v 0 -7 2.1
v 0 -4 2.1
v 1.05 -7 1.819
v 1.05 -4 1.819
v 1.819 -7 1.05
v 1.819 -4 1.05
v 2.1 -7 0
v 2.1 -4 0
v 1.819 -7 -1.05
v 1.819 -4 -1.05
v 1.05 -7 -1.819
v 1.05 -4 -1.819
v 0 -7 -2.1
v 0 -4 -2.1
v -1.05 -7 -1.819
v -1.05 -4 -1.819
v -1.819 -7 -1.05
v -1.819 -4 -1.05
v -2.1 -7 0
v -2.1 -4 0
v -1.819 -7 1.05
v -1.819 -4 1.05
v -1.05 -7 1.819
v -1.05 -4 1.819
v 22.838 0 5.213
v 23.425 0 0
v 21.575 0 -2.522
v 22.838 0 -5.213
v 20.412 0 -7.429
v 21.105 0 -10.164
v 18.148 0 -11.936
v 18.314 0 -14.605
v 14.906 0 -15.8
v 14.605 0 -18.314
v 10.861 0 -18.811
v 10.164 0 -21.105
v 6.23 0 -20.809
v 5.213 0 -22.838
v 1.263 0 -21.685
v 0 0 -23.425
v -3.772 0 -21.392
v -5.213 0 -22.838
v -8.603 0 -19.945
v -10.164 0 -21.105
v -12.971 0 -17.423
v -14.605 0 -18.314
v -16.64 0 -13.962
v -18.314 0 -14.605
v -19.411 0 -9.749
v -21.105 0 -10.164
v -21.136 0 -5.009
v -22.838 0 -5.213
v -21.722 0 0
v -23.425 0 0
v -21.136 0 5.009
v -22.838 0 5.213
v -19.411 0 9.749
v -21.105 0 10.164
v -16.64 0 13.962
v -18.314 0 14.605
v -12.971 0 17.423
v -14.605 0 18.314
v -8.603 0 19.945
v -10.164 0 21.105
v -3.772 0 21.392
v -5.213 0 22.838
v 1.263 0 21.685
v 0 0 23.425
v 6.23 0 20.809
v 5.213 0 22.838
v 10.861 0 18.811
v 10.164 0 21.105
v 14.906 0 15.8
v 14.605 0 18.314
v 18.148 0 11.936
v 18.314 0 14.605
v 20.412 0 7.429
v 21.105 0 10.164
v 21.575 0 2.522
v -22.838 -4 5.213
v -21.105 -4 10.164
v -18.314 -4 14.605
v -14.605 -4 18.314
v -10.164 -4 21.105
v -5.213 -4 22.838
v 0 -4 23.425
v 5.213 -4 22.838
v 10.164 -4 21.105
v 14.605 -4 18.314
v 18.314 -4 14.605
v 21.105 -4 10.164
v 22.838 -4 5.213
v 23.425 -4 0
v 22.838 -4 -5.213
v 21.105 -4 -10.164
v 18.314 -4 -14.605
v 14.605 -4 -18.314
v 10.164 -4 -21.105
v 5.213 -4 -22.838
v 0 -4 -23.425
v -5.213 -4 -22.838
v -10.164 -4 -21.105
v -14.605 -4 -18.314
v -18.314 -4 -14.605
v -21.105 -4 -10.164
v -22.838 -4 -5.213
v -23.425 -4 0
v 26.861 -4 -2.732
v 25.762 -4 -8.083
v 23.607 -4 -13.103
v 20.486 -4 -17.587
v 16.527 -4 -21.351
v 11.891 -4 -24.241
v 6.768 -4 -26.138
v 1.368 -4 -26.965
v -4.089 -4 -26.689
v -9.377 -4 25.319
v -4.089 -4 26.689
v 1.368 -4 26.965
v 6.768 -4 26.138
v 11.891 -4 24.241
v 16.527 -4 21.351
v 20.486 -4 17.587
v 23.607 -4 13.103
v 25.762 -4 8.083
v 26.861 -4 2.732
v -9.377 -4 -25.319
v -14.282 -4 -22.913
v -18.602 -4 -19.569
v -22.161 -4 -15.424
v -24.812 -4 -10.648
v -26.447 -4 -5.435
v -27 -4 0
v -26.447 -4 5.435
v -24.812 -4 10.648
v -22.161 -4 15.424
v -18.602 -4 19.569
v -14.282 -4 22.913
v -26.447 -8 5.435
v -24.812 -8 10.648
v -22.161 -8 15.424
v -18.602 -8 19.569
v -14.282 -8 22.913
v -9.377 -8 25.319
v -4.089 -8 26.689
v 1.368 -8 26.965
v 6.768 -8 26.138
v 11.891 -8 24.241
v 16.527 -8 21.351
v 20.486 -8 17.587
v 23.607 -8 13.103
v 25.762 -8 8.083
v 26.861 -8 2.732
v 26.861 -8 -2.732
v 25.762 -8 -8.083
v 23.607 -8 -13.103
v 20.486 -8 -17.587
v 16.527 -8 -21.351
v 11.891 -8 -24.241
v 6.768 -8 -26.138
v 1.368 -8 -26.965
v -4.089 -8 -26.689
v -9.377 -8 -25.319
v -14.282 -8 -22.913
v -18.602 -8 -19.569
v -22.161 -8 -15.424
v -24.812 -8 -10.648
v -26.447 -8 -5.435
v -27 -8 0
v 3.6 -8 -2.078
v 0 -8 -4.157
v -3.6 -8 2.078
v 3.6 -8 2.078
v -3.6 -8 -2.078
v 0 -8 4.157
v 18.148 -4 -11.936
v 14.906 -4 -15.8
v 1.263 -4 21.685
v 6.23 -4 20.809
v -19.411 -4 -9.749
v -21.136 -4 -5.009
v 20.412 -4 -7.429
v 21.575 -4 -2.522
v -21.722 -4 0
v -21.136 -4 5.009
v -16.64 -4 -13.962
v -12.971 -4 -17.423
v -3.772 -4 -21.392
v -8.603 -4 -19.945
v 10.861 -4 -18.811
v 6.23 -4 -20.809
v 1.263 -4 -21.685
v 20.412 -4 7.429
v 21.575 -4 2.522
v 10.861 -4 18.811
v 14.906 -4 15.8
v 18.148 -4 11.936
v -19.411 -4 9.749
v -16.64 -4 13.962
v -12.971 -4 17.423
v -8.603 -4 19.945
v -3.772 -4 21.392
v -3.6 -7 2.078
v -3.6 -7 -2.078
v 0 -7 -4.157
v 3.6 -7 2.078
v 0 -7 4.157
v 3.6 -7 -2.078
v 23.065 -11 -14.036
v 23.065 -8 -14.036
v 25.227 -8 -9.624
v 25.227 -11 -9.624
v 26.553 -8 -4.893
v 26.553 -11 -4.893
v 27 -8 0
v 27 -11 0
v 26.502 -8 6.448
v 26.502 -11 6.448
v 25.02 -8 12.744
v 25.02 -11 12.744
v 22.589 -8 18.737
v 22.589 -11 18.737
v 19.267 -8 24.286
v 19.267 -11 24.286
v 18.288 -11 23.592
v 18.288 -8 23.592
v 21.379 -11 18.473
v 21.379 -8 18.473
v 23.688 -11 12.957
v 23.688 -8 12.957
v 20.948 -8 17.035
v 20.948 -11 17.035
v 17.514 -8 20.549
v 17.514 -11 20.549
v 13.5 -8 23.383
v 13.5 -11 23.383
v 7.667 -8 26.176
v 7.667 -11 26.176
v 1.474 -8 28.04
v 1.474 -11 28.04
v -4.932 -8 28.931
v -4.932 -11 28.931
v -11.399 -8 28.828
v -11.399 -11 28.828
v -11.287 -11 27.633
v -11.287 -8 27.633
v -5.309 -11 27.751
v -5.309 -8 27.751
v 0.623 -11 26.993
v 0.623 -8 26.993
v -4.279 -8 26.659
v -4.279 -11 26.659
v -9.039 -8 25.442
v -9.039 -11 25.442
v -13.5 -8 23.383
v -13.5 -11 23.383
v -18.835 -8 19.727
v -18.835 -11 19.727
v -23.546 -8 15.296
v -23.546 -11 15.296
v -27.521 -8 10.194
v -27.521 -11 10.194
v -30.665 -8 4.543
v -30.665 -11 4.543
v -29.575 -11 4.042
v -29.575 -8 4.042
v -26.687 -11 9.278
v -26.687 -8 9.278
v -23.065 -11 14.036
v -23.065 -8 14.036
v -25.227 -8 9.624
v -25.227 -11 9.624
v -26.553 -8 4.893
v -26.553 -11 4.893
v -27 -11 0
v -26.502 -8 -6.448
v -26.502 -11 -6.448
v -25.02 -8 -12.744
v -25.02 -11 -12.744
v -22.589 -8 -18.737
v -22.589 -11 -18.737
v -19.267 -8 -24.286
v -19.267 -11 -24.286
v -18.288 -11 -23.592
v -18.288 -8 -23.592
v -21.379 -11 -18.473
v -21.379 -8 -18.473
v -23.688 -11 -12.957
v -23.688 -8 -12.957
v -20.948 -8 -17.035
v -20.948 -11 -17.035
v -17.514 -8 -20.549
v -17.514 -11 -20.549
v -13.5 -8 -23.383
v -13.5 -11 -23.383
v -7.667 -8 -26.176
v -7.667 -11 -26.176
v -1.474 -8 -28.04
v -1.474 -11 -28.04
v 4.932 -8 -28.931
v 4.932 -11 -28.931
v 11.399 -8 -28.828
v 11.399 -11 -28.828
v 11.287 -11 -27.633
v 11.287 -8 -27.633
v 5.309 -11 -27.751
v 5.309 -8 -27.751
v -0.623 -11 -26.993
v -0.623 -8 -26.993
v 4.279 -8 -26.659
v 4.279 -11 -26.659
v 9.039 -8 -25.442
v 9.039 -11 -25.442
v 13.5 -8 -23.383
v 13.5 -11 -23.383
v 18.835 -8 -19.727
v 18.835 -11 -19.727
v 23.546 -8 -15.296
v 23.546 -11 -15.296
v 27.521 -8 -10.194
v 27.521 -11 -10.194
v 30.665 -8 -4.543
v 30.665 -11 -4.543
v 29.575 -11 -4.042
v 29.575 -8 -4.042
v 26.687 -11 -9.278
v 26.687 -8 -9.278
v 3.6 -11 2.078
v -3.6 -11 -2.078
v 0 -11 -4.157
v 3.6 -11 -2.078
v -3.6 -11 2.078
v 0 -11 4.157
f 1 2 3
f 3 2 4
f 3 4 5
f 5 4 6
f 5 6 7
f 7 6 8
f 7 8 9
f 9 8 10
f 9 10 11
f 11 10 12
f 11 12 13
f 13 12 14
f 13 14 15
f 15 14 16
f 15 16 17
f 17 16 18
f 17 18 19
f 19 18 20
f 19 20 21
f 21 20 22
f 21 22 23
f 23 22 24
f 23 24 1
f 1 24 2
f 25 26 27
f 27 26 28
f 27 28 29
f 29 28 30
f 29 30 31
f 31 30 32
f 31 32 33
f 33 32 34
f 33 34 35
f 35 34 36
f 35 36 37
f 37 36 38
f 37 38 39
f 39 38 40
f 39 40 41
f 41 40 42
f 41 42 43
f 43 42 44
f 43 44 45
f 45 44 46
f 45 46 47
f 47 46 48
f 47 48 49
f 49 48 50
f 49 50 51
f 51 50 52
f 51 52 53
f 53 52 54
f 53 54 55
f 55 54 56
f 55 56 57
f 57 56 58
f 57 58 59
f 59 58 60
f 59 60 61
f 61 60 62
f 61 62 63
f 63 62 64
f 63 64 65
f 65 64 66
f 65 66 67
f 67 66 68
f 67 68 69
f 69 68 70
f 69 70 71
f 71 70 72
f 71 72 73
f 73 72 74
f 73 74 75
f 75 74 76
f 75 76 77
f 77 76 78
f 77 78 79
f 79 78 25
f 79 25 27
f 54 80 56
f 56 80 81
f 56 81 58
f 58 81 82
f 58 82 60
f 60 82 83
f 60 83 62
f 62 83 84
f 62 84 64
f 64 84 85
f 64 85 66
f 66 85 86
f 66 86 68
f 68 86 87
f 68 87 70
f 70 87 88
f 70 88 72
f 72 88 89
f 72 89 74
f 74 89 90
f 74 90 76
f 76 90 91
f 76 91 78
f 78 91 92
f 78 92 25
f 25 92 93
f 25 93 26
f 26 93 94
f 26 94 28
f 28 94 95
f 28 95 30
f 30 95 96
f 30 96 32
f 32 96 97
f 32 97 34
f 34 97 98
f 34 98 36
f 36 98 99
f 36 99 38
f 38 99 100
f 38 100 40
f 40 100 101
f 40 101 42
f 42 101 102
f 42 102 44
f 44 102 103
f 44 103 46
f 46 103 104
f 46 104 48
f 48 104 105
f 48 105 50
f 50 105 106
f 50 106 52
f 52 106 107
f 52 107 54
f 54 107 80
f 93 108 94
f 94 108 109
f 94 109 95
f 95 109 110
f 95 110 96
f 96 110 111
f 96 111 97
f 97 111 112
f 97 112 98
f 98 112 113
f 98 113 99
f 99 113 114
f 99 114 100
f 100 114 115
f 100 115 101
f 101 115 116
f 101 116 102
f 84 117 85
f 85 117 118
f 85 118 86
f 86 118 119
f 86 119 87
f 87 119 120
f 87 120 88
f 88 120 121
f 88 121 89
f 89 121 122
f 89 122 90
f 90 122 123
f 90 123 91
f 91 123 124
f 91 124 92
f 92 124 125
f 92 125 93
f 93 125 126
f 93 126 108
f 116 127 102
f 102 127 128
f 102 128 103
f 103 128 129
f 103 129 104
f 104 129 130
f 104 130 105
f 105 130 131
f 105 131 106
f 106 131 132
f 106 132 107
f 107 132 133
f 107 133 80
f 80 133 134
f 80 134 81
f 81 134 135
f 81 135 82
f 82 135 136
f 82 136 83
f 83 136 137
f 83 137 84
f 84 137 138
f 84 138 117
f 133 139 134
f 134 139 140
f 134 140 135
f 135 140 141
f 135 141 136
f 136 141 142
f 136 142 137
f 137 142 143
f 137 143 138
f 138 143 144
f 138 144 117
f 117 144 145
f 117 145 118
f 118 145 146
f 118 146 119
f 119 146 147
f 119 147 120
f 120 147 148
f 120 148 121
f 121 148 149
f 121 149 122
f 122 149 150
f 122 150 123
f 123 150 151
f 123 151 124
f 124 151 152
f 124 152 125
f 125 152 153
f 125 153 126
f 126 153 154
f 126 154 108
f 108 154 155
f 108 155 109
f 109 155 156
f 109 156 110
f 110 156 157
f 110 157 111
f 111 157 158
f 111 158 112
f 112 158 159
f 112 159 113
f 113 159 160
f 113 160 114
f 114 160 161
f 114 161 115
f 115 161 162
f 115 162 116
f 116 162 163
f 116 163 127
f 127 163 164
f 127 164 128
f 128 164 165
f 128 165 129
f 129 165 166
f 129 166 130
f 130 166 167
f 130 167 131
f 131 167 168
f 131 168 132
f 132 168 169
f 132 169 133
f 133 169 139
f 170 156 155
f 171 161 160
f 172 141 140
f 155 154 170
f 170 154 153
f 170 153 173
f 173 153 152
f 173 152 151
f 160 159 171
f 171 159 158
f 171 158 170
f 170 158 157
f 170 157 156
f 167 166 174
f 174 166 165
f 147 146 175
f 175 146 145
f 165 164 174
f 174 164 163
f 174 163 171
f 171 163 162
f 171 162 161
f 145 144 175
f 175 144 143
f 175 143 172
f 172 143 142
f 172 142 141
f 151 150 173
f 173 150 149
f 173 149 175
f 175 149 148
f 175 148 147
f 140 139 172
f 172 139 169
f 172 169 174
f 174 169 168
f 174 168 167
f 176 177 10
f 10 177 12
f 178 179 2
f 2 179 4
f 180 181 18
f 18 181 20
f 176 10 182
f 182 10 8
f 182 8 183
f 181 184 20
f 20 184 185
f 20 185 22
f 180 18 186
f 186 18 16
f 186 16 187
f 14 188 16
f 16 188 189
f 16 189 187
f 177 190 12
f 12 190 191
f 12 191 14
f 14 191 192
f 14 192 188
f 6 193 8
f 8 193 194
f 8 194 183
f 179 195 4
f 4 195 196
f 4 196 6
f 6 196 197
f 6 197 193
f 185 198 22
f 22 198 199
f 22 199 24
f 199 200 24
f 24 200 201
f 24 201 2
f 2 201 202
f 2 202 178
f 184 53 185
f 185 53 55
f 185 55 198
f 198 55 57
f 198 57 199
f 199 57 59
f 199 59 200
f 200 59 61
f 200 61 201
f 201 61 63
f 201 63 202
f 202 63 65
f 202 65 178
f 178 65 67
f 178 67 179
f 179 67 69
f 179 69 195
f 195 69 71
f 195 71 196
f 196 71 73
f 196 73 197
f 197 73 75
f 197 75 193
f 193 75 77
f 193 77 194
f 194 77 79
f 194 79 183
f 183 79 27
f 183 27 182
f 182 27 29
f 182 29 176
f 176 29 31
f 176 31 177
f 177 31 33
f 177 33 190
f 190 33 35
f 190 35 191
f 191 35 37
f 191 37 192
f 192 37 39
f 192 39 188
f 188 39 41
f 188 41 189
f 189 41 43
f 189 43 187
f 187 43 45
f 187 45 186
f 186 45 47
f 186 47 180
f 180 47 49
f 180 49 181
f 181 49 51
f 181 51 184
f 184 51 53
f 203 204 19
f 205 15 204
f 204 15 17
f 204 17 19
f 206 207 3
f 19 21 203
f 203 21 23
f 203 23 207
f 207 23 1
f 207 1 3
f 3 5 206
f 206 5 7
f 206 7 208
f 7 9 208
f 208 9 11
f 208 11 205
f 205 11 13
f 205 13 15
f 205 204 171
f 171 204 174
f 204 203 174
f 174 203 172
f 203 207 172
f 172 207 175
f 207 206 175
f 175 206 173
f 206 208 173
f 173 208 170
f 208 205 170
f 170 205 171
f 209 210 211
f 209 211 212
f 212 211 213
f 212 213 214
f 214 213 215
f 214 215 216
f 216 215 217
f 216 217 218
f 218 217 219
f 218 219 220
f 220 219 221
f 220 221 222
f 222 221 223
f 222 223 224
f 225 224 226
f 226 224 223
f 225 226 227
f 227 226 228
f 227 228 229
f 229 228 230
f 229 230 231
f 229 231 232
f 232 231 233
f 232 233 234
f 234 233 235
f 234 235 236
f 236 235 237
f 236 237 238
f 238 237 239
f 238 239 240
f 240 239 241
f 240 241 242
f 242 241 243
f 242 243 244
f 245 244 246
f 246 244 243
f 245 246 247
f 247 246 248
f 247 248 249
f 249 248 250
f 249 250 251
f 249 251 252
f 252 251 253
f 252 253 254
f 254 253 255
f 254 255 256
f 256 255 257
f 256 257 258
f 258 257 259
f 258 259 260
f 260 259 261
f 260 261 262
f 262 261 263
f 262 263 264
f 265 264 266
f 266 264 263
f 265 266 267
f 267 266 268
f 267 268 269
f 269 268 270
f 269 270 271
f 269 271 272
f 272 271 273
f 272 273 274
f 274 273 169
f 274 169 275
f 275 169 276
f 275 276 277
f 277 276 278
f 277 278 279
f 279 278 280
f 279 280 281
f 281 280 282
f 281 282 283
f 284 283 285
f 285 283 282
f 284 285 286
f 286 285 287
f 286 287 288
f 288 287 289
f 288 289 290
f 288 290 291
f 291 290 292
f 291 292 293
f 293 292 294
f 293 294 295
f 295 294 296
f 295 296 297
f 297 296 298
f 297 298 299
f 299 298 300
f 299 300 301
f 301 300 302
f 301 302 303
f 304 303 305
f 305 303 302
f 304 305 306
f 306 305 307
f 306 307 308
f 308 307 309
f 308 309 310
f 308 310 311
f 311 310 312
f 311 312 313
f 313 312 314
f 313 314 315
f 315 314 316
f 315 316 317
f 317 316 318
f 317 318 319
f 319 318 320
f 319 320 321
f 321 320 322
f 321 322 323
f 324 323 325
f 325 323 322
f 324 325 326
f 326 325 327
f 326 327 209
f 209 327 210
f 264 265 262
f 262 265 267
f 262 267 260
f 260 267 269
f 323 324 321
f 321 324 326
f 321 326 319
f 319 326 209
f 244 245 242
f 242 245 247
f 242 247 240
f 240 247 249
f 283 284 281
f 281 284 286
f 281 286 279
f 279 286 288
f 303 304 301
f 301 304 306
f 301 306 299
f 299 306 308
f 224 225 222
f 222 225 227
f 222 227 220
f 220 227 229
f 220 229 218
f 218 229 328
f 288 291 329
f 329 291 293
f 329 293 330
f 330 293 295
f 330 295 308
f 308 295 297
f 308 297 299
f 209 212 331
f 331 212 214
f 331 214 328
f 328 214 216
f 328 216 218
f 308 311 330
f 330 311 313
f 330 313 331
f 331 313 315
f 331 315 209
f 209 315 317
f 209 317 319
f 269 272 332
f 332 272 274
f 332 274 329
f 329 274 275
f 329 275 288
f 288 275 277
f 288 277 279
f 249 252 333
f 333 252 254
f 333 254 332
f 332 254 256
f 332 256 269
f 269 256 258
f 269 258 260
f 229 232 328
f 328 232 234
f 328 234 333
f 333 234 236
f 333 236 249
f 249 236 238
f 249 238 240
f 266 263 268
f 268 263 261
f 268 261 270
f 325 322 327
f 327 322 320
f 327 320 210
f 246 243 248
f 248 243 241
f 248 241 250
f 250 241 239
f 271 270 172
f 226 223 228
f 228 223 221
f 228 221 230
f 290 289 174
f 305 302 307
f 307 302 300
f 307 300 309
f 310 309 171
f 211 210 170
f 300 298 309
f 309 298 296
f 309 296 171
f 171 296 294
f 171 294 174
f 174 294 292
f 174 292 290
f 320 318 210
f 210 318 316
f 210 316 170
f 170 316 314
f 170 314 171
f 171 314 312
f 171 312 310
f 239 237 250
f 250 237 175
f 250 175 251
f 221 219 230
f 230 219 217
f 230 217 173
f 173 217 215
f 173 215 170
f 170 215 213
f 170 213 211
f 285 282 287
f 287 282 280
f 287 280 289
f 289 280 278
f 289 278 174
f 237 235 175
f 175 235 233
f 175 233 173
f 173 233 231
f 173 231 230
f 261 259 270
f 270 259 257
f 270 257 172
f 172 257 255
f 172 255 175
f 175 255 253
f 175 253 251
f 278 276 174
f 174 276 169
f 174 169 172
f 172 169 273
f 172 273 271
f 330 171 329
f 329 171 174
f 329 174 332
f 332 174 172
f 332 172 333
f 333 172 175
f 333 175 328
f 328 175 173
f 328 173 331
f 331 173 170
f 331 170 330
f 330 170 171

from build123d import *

# Parameters (mm, degrees)
BOSS_EXTRUDE1_DEPTH = 3
SKETCH23_W          = 2.1
SKETCH23_H          = 7
CUT_EXTRUDE1_DEPTH  = 4


with BuildPart() as part:
    # Sketch1 → Revolve1 (revolve)
    with BuildSketch(Plane.XY):
        Polygon((-23.425, 0), (-23.425, -4), (-27, -4), (-27, -8), (0, -8), (0, -4), (-21.721500416, -4), (-21.721500416, 0), align=None)
    revolve(axis=Axis((0, -8, 0), (0, -1, 0)))


with BuildPart() as body_2:
    # Sketch18 → Boss-Extrude1 (new body)
    with BuildSketch(Plane.XZ.offset(8)):
        with BuildLine():
            Line((18.287619048, 23.591829478), (19.266666667, 24.285706816))
            ThreePointArc((19.266666667, 24.285706816), (25.019995002, 12.743625858), (27, 0))
            ThreePointArc((27, 0), (25.997622732, -7.288594671), (23.06491761, -14.036009962))
            ThreePointArc((23.06491761, -14.036009962), (26.687121428, -9.277998508), (29.574933174, -4.041627931))
            Line((29.574933174, -4.041627931), (30.665372385, -4.542569372))
            ThreePointArc((30.665372385, -4.542569372), (23.54630123, -15.296138346), (13.5, -23.382685902))
            ThreePointArc((13.5, -23.382685902), (6.686703224, -26.158899059), (-0.62308239, -26.992809567))
            ThreePointArc((-0.62308239, -26.992809567), (5.30857831, -27.750724365), (11.287314126, -27.633457409))
            Line((11.287314126, -27.633457409), (11.398705718, -28.828276188))
            ThreePointArc((11.398705718, -28.828276188), (-1.473693772, -28.039764204), (-13.5, -23.382685902))
            ThreePointArc((-13.5, -23.382685902), (-19.310919509, -18.870304389), (-23.688, -12.956799605))
            ThreePointArc((-23.688, -12.956799605), (-21.378543119, -18.472725857), (-18.287619048, -23.591829478))
            Line((-18.287619048, -23.591829478), (-19.266666667, -24.285706816))
            ThreePointArc((-19.266666667, -24.285706816), (-25.019995002, -12.743625858), (-27, 0))
            ThreePointArc((-27, 0), (-25.997622732, 7.288594671), (-23.06491761, 14.036009962))
            ThreePointArc((-23.06491761, 14.036009962), (-26.687121428, 9.277998508), (-29.574933174, 4.041627931))
            Line((-29.574933174, 4.041627931), (-30.665372385, 4.542569372))
            ThreePointArc((-30.665372385, 4.542569372), (-23.54630123, 15.296138346), (-13.5, 23.382685902))
            ThreePointArc((-13.5, 23.382685902), (-6.686703224, 26.158899059), (0.62308239, 26.992809567))
            ThreePointArc((0.62308239, 26.992809567), (-5.30857831, 27.750724365), (-11.287314126, 27.633457409))
            Line((-11.287314126, 27.633457409), (-11.398705718, 28.828276188))
            ThreePointArc((-11.398705718, 28.828276188), (1.473693772, 28.039764204), (13.5, 23.382685902))
            ThreePointArc((13.5, 23.382685902), (19.310919509, 18.870304389), (23.688, 12.956799605))
            ThreePointArc((23.688, 12.956799605), (21.378543119, 18.472725857), (18.287619048, 23.591829478))
        make_face()
    extrude(amount=BOSS_EXTRUDE1_DEPTH)


with BuildPart() as f_4_2_4_2_diameter_hole1_tool:
    # Sketch23 → Ø4.2 (4.2) Diameter Hole1 (revolve)
    with BuildSketch(Plane(origin=(0, -4, 0), x_dir=(0, 0, 1), z_dir=(1, 0, 0))):
        with Locations((1.05, 3.5)):
            Rectangle(SKETCH23_W, SKETCH23_H)
    revolve(axis=Axis((0, 2.35, 0), (0, -1, 0)))


with BuildPart() as part_1:
    add(part.part)

    # Ø4.2 (4.2) Diameter Hole1: cut by f_4_2_4_2_diameter_hole1_tool
    add(f_4_2_4_2_diameter_hole1_tool.part, mode=Mode.SUBTRACT)


with BuildPart() as body_2_1:
    add(body_2.part)

    # Ø4.2 (4.2) Diameter Hole1: cut by f_4_2_4_2_diameter_hole1_tool
    add(f_4_2_4_2_diameter_hole1_tool.part, mode=Mode.SUBTRACT)


with BuildPart() as cut_extrude1_tool:
    # Sketch19 → Cut-Extrude1 (new body)
    with BuildSketch(Plane.XZ.offset(11)):
        Polygon((0, -4.156921938), (3.6, -2.078460969), (3.6, 2.078460969), (0, 4.156921938), (-3.6, 2.078460969), (-3.6, -2.078460969), align=None)
    extrude(amount=-CUT_EXTRUDE1_DEPTH)


with BuildPart() as part_2:
    add(part_1.part)

    # Cut-Extrude1: cut by cut_extrude1_tool
    add(cut_extrude1_tool.part, mode=Mode.SUBTRACT)


with BuildPart() as body_2_2:
    add(body_2_1.part)

    # Cut-Extrude1: cut by cut_extrude1_tool
    add(cut_extrude1_tool.part, mode=Mode.SUBTRACT)


solid = Compound([part_2.part, body_2_2.part])
